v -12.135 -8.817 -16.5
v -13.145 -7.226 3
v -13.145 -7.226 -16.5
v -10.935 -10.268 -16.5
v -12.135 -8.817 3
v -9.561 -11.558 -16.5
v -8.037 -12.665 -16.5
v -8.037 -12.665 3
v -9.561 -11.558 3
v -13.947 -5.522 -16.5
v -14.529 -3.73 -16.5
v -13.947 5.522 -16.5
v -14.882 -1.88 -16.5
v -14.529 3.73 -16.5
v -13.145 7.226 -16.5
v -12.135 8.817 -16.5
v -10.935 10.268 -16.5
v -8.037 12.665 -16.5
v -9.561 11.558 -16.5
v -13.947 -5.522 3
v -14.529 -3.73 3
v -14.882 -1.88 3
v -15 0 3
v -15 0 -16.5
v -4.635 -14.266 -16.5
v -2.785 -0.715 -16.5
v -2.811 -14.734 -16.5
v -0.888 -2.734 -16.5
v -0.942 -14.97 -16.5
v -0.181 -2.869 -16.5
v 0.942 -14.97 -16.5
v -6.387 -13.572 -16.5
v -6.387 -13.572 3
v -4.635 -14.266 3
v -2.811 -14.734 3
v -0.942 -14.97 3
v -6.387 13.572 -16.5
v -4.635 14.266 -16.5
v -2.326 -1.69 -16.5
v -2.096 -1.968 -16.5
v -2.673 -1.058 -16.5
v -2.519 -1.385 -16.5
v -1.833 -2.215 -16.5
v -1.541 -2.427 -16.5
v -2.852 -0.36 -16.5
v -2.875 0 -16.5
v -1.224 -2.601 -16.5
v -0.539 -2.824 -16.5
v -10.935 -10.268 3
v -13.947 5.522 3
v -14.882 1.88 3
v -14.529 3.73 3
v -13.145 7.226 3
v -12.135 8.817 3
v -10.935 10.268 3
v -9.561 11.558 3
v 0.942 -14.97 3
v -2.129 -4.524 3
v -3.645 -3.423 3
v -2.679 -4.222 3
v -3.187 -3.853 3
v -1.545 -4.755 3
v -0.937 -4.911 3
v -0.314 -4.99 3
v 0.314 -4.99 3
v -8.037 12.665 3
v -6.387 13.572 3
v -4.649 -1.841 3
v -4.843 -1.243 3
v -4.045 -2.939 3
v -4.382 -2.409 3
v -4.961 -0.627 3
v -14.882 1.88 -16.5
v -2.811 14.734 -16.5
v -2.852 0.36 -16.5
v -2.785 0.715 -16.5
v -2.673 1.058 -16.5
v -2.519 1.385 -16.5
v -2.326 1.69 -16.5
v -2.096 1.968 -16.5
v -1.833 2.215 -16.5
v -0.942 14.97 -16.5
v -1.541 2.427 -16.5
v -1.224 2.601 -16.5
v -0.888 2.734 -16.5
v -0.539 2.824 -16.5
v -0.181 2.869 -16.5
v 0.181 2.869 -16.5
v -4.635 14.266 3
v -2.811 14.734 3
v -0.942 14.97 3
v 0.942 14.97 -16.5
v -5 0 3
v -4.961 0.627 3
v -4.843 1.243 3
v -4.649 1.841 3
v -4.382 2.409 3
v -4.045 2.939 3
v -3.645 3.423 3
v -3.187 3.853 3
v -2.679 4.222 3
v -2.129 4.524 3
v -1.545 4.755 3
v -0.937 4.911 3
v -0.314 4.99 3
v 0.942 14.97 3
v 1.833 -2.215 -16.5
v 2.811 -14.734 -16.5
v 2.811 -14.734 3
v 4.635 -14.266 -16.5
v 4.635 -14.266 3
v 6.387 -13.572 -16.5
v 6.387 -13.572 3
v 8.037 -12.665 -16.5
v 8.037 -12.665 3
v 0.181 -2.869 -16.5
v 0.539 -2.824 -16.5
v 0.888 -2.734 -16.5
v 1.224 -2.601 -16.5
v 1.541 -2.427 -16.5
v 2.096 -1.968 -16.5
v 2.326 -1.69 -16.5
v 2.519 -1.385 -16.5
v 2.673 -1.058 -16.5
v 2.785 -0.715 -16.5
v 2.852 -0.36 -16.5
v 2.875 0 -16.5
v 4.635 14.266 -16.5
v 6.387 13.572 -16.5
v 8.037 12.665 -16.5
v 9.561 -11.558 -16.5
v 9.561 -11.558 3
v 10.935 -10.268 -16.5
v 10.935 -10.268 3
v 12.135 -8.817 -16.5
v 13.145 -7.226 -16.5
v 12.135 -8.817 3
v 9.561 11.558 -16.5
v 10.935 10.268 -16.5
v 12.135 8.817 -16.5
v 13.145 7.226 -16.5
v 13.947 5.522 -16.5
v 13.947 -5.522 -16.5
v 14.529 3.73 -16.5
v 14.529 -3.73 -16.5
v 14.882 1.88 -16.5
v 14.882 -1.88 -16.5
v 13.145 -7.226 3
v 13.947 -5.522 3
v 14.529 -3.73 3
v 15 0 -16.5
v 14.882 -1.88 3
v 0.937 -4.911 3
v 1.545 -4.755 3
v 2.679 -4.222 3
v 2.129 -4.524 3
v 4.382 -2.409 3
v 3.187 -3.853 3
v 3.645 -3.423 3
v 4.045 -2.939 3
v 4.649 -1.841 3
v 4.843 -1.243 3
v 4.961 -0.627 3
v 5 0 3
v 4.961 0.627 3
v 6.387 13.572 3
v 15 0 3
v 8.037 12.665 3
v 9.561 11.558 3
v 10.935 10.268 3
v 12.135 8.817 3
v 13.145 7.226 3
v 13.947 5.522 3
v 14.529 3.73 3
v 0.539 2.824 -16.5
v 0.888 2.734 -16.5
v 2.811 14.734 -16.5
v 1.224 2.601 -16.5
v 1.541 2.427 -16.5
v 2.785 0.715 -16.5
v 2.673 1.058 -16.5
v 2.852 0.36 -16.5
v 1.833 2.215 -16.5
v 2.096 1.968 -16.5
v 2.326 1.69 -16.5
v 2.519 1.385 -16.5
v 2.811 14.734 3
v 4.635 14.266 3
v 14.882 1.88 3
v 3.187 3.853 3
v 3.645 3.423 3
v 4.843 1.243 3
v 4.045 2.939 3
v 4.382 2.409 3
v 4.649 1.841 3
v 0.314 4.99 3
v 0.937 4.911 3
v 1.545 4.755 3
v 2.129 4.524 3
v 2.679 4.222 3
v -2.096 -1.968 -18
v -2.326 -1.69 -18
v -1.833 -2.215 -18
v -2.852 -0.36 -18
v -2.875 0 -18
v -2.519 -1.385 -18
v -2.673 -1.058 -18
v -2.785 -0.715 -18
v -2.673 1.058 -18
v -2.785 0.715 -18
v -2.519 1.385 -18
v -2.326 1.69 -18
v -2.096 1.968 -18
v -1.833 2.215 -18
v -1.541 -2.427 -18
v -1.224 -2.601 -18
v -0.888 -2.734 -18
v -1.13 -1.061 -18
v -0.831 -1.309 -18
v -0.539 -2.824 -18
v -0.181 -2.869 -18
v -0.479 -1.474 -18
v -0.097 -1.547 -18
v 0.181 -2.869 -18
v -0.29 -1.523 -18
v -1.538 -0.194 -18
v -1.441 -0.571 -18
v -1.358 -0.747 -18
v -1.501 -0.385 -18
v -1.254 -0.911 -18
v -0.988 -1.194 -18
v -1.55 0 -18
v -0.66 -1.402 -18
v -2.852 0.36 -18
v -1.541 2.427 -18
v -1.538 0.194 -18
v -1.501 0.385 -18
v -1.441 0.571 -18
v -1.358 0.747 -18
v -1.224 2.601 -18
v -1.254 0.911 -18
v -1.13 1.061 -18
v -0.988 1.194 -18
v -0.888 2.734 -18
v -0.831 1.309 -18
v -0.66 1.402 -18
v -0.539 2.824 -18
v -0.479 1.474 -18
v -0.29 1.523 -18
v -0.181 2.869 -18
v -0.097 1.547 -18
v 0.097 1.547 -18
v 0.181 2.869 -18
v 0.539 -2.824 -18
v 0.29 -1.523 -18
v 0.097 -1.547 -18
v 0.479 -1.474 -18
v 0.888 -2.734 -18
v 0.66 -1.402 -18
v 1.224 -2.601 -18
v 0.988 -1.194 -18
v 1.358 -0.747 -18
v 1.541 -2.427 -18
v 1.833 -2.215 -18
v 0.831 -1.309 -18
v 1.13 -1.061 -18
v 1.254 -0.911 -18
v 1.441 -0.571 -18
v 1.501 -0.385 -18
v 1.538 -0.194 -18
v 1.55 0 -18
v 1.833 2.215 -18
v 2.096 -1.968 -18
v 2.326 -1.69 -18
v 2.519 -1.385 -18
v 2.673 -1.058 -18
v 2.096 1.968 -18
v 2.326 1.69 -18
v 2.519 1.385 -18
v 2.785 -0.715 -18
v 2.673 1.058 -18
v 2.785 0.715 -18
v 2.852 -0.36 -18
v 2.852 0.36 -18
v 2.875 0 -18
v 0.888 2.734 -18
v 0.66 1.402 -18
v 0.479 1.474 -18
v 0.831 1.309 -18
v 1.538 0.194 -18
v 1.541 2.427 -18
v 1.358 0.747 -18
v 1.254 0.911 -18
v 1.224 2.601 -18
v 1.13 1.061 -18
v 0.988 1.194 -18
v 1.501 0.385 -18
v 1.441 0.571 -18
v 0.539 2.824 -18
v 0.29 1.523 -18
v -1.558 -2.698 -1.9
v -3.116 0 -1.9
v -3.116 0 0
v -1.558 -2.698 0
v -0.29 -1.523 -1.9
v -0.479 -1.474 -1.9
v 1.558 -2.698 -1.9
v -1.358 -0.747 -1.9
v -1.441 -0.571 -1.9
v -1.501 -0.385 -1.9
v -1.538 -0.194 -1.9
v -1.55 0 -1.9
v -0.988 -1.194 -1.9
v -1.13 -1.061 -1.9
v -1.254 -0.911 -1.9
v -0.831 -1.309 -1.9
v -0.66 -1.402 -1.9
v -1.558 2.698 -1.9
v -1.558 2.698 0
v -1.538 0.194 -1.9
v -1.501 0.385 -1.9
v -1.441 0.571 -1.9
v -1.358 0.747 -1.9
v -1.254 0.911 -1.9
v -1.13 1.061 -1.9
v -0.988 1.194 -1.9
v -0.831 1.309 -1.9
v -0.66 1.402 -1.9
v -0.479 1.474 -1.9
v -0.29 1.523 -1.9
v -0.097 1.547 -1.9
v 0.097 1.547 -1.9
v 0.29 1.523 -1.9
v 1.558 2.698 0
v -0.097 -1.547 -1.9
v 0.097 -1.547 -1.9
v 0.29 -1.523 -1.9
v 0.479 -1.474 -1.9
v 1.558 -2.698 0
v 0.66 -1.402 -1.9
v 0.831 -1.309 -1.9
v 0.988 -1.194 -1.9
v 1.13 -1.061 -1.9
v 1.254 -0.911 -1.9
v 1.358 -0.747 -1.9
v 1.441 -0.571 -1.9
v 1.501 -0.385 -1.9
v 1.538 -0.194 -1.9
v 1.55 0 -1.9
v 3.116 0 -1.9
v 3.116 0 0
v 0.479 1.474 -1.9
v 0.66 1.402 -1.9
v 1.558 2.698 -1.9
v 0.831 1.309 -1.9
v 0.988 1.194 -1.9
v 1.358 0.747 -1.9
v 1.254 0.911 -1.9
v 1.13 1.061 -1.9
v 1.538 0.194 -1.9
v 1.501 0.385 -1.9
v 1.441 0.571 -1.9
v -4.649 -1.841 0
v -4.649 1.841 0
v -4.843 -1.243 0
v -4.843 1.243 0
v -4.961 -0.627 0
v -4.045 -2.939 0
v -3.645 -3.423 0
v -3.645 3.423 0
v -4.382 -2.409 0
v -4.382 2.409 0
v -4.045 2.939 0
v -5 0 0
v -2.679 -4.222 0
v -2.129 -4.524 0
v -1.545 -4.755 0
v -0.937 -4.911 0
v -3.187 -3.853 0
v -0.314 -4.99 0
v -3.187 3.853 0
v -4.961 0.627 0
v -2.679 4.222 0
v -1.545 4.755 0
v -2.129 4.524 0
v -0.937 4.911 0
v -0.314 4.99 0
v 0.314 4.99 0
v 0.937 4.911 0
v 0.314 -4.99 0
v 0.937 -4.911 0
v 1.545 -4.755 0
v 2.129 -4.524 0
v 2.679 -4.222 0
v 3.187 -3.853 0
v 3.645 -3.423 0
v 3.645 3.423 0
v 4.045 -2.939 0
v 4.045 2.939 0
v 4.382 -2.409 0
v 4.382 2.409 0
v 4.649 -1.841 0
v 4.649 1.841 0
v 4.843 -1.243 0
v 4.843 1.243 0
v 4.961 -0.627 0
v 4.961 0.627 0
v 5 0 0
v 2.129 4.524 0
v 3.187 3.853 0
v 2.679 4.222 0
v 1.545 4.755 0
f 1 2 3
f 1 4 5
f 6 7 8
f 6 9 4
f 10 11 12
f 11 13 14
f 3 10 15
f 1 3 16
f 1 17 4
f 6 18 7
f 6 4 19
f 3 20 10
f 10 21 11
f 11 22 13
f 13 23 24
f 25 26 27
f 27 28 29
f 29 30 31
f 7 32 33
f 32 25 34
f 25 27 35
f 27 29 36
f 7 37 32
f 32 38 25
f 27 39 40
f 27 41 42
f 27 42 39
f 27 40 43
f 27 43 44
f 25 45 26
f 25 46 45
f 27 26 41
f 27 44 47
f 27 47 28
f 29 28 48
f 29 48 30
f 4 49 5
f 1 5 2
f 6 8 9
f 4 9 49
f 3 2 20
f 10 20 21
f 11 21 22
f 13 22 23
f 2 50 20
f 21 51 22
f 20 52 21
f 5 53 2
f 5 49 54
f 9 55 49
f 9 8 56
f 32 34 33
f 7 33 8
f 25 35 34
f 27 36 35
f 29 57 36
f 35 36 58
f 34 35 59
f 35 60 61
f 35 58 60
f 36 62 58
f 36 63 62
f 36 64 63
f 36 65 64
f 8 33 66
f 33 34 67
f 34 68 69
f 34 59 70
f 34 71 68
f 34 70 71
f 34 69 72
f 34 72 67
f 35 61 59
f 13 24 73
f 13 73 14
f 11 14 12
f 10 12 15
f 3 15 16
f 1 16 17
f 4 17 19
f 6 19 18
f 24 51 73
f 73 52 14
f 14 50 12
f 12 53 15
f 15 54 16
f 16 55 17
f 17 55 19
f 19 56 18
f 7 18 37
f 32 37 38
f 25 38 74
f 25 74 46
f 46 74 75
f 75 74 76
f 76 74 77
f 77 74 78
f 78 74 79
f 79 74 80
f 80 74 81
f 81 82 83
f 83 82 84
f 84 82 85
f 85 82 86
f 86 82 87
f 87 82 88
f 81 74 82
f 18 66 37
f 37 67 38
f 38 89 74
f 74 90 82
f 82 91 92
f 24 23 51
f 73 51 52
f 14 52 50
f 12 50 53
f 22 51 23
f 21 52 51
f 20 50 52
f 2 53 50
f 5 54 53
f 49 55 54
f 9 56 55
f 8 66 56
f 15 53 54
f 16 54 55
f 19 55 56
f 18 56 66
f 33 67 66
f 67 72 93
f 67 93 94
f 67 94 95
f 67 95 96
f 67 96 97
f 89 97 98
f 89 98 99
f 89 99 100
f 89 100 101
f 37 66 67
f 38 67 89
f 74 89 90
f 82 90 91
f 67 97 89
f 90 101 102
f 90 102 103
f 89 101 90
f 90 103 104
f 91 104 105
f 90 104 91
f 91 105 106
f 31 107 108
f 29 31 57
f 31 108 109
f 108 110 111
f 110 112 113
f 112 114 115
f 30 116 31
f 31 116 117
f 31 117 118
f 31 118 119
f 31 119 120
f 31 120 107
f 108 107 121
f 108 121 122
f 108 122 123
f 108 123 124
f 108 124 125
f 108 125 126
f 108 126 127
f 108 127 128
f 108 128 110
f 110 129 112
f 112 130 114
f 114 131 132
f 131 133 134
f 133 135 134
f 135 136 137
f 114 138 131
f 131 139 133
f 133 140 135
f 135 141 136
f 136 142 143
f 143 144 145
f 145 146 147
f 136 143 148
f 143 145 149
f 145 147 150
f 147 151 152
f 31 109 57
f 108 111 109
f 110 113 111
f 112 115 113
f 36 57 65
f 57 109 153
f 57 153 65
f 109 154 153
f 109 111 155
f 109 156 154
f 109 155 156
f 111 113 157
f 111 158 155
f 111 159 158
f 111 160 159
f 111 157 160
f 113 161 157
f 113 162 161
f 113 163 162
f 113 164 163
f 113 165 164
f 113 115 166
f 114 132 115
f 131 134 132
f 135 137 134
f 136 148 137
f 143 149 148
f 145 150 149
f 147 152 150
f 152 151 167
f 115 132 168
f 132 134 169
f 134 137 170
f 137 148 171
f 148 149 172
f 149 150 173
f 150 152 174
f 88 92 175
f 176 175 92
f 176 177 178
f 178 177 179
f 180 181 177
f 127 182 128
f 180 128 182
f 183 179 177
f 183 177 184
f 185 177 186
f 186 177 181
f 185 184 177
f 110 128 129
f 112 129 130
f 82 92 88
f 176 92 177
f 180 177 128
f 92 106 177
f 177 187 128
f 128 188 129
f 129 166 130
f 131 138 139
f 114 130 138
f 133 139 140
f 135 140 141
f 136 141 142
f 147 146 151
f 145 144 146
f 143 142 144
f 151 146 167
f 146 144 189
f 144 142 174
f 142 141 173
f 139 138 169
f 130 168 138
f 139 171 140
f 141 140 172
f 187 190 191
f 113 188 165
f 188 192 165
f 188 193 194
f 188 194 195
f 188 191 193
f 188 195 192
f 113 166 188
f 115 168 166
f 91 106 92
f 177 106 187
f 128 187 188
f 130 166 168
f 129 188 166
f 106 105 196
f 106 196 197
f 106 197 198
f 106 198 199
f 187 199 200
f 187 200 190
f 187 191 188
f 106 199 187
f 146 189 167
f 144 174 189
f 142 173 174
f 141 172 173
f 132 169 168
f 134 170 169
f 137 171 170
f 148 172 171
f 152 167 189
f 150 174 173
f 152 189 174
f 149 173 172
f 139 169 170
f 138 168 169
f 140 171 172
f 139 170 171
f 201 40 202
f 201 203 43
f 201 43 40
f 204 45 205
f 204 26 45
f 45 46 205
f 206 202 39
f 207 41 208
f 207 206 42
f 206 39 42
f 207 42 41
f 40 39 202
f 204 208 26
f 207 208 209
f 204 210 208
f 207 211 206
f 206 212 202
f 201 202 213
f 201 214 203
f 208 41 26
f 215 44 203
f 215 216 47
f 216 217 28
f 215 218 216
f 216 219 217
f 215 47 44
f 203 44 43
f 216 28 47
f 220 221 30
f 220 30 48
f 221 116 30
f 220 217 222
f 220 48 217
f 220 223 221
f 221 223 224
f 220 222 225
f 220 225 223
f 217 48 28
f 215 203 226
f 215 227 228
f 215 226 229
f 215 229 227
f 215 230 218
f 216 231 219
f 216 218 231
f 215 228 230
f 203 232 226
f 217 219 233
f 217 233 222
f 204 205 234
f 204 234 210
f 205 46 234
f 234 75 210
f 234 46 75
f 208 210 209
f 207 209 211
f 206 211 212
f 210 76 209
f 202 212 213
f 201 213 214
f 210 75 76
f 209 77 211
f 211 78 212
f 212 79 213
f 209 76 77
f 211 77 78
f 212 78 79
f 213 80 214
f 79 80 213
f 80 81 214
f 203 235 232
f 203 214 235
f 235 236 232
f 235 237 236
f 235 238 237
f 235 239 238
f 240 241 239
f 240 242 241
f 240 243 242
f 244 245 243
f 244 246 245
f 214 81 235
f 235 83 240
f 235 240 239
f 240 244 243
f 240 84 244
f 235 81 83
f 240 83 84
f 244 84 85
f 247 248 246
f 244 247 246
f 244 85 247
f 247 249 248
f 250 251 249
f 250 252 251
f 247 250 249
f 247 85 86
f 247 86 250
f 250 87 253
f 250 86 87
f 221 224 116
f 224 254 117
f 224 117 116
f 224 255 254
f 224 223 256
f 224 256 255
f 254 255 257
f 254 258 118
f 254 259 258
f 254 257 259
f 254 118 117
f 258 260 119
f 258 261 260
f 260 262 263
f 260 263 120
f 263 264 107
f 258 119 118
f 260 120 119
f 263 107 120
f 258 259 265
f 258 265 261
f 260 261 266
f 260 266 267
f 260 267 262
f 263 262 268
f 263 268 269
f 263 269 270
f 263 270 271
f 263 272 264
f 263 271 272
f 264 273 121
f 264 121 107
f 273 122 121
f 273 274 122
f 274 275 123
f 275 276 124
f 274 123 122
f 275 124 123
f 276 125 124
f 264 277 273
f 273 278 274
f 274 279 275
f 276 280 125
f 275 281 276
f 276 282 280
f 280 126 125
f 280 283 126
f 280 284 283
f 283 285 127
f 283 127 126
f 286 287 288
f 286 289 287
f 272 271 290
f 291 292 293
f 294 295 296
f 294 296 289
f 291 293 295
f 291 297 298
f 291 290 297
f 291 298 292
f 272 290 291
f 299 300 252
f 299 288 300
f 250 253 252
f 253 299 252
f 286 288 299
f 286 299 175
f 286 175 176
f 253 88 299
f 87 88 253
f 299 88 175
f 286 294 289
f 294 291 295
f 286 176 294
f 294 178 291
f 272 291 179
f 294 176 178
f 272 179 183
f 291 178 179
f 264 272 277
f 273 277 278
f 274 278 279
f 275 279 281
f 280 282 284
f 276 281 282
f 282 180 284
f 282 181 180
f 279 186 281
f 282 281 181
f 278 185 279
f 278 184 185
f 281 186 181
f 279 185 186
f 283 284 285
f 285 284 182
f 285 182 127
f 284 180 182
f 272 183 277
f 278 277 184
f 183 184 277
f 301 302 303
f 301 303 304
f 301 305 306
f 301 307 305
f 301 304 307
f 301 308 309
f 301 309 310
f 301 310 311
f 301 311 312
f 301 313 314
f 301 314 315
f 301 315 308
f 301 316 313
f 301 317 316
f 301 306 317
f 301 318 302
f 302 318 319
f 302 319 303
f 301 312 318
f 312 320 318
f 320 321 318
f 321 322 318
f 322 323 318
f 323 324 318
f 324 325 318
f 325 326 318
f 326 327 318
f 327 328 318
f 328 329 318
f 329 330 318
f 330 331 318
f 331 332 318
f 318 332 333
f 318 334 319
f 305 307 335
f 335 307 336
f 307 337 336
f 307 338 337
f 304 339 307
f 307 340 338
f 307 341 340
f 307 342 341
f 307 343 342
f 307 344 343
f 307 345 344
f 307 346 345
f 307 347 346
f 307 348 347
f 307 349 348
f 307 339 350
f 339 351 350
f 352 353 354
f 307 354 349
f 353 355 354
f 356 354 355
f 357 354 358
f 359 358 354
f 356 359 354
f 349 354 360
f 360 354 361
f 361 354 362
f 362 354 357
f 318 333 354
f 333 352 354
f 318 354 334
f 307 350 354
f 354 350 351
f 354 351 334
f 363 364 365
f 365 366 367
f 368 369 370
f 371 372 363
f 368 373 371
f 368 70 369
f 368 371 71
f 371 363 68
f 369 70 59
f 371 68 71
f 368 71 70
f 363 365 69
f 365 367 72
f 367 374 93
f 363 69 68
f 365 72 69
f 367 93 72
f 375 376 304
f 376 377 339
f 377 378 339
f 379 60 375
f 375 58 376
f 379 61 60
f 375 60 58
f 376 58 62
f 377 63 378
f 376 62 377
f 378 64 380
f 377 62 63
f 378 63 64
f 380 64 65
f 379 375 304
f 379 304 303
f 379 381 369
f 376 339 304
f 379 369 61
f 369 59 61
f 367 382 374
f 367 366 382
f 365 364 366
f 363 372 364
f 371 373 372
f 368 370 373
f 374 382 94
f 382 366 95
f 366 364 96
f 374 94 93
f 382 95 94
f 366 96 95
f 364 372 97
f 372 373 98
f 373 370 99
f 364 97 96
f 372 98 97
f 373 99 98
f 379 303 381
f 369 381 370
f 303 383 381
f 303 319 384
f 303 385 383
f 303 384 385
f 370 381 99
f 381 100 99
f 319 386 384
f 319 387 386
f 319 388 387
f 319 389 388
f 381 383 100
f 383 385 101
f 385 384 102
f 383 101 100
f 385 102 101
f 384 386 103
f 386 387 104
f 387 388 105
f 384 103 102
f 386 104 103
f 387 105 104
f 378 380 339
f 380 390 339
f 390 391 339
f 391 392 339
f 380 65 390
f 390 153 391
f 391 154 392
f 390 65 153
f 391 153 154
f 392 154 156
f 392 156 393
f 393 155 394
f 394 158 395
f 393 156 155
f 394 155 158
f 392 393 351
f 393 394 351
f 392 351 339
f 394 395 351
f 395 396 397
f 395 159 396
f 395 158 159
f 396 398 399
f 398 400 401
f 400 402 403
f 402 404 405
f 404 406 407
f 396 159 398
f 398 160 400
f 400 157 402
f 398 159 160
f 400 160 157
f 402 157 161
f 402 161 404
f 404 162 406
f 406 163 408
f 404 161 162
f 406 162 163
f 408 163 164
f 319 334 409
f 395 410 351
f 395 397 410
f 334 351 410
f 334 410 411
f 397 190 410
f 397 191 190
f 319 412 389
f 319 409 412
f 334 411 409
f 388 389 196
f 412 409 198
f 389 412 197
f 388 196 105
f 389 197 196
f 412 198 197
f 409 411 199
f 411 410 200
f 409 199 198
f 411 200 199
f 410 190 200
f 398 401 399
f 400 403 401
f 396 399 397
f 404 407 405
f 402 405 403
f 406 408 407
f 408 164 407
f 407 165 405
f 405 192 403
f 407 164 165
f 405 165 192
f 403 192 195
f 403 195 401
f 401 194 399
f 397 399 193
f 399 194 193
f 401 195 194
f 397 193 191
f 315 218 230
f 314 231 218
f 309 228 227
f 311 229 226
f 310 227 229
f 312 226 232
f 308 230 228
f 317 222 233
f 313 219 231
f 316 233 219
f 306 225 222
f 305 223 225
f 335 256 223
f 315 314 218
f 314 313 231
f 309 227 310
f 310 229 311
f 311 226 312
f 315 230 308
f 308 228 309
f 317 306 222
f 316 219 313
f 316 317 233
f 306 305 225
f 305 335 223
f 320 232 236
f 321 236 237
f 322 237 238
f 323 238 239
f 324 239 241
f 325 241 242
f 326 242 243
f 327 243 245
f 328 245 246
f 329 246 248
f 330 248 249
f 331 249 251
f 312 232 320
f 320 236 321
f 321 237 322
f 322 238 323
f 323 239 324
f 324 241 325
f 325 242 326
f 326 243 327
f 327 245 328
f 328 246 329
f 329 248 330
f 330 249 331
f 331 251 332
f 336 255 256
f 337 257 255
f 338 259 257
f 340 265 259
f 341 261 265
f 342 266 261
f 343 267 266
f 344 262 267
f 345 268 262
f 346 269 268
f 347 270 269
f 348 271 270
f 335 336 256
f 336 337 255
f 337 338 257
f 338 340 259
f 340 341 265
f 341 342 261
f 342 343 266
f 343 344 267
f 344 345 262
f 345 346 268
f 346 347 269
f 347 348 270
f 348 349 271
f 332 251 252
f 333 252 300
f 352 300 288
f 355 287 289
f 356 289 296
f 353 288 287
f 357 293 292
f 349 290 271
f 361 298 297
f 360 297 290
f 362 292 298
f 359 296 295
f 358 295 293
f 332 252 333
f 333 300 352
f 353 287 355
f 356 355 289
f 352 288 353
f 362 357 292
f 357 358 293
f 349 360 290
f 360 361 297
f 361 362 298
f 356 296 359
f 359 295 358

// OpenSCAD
$fn = 50;


difference() {
	union() {
		translate(v = [0, 0, -16.5000000000]) {
			cylinder(h = 19.5000000000, r = 15.0000000000);
		}
		#translate(v = [0, 0, -18.0000000000]) {
			cylinder(h = 18, r = 2.8750000000);
		}
	}
	union() {
		translate(v = [0, 0, 0]) {
			rotate(a = [0, 0, 0]) {
				difference() {
					union() {
						translate(v = [0, 0, -1.9000000000]) {
							linear_extrude(height = 1.9000000000) {
								polygon(points = [[3.1158000000, 0.0000000000], [1.5579000000, 2.6983619531], [-1.5579000000, 2.6983619531], [-3.1158000000, 0.0000000000], [-1.5579000000, -2.6983619531], [1.5579000000, -2.6983619531]]);
							}
						}
					}
					union();
				}
			}
		}
		#cylinder(h = 3, r = 5.0000000000);
		#translate(v = [0, 0, -100.0000000000]) {
			cylinder(h = 200, r = 1.5500000000);
		}
	}
}
